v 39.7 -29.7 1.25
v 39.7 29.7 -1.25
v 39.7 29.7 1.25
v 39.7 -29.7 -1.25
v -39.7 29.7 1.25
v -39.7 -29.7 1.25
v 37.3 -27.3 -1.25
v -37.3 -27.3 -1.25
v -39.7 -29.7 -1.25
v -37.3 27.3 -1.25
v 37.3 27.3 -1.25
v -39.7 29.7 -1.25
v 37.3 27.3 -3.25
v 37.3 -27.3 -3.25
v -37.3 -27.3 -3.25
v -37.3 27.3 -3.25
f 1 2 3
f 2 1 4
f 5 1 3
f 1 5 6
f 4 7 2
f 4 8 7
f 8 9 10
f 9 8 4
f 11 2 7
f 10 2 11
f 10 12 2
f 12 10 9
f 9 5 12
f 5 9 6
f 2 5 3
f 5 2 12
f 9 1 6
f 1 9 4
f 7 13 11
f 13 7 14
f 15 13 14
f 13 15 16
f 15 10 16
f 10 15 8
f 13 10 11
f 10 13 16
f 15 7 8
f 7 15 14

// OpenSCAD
// ========================================
// electronics enclosure — lid
// NeuroCAD canonical IR; dimensions are millimetres
// ========================================
$fn = 64;

union() {
  cube(size=[79.4, 59.4, 2.5], center=true);
  translate([0, 0, -2.25]) {
    cube(size=[74.6, 54.6, 2], center=true);
  }
}
